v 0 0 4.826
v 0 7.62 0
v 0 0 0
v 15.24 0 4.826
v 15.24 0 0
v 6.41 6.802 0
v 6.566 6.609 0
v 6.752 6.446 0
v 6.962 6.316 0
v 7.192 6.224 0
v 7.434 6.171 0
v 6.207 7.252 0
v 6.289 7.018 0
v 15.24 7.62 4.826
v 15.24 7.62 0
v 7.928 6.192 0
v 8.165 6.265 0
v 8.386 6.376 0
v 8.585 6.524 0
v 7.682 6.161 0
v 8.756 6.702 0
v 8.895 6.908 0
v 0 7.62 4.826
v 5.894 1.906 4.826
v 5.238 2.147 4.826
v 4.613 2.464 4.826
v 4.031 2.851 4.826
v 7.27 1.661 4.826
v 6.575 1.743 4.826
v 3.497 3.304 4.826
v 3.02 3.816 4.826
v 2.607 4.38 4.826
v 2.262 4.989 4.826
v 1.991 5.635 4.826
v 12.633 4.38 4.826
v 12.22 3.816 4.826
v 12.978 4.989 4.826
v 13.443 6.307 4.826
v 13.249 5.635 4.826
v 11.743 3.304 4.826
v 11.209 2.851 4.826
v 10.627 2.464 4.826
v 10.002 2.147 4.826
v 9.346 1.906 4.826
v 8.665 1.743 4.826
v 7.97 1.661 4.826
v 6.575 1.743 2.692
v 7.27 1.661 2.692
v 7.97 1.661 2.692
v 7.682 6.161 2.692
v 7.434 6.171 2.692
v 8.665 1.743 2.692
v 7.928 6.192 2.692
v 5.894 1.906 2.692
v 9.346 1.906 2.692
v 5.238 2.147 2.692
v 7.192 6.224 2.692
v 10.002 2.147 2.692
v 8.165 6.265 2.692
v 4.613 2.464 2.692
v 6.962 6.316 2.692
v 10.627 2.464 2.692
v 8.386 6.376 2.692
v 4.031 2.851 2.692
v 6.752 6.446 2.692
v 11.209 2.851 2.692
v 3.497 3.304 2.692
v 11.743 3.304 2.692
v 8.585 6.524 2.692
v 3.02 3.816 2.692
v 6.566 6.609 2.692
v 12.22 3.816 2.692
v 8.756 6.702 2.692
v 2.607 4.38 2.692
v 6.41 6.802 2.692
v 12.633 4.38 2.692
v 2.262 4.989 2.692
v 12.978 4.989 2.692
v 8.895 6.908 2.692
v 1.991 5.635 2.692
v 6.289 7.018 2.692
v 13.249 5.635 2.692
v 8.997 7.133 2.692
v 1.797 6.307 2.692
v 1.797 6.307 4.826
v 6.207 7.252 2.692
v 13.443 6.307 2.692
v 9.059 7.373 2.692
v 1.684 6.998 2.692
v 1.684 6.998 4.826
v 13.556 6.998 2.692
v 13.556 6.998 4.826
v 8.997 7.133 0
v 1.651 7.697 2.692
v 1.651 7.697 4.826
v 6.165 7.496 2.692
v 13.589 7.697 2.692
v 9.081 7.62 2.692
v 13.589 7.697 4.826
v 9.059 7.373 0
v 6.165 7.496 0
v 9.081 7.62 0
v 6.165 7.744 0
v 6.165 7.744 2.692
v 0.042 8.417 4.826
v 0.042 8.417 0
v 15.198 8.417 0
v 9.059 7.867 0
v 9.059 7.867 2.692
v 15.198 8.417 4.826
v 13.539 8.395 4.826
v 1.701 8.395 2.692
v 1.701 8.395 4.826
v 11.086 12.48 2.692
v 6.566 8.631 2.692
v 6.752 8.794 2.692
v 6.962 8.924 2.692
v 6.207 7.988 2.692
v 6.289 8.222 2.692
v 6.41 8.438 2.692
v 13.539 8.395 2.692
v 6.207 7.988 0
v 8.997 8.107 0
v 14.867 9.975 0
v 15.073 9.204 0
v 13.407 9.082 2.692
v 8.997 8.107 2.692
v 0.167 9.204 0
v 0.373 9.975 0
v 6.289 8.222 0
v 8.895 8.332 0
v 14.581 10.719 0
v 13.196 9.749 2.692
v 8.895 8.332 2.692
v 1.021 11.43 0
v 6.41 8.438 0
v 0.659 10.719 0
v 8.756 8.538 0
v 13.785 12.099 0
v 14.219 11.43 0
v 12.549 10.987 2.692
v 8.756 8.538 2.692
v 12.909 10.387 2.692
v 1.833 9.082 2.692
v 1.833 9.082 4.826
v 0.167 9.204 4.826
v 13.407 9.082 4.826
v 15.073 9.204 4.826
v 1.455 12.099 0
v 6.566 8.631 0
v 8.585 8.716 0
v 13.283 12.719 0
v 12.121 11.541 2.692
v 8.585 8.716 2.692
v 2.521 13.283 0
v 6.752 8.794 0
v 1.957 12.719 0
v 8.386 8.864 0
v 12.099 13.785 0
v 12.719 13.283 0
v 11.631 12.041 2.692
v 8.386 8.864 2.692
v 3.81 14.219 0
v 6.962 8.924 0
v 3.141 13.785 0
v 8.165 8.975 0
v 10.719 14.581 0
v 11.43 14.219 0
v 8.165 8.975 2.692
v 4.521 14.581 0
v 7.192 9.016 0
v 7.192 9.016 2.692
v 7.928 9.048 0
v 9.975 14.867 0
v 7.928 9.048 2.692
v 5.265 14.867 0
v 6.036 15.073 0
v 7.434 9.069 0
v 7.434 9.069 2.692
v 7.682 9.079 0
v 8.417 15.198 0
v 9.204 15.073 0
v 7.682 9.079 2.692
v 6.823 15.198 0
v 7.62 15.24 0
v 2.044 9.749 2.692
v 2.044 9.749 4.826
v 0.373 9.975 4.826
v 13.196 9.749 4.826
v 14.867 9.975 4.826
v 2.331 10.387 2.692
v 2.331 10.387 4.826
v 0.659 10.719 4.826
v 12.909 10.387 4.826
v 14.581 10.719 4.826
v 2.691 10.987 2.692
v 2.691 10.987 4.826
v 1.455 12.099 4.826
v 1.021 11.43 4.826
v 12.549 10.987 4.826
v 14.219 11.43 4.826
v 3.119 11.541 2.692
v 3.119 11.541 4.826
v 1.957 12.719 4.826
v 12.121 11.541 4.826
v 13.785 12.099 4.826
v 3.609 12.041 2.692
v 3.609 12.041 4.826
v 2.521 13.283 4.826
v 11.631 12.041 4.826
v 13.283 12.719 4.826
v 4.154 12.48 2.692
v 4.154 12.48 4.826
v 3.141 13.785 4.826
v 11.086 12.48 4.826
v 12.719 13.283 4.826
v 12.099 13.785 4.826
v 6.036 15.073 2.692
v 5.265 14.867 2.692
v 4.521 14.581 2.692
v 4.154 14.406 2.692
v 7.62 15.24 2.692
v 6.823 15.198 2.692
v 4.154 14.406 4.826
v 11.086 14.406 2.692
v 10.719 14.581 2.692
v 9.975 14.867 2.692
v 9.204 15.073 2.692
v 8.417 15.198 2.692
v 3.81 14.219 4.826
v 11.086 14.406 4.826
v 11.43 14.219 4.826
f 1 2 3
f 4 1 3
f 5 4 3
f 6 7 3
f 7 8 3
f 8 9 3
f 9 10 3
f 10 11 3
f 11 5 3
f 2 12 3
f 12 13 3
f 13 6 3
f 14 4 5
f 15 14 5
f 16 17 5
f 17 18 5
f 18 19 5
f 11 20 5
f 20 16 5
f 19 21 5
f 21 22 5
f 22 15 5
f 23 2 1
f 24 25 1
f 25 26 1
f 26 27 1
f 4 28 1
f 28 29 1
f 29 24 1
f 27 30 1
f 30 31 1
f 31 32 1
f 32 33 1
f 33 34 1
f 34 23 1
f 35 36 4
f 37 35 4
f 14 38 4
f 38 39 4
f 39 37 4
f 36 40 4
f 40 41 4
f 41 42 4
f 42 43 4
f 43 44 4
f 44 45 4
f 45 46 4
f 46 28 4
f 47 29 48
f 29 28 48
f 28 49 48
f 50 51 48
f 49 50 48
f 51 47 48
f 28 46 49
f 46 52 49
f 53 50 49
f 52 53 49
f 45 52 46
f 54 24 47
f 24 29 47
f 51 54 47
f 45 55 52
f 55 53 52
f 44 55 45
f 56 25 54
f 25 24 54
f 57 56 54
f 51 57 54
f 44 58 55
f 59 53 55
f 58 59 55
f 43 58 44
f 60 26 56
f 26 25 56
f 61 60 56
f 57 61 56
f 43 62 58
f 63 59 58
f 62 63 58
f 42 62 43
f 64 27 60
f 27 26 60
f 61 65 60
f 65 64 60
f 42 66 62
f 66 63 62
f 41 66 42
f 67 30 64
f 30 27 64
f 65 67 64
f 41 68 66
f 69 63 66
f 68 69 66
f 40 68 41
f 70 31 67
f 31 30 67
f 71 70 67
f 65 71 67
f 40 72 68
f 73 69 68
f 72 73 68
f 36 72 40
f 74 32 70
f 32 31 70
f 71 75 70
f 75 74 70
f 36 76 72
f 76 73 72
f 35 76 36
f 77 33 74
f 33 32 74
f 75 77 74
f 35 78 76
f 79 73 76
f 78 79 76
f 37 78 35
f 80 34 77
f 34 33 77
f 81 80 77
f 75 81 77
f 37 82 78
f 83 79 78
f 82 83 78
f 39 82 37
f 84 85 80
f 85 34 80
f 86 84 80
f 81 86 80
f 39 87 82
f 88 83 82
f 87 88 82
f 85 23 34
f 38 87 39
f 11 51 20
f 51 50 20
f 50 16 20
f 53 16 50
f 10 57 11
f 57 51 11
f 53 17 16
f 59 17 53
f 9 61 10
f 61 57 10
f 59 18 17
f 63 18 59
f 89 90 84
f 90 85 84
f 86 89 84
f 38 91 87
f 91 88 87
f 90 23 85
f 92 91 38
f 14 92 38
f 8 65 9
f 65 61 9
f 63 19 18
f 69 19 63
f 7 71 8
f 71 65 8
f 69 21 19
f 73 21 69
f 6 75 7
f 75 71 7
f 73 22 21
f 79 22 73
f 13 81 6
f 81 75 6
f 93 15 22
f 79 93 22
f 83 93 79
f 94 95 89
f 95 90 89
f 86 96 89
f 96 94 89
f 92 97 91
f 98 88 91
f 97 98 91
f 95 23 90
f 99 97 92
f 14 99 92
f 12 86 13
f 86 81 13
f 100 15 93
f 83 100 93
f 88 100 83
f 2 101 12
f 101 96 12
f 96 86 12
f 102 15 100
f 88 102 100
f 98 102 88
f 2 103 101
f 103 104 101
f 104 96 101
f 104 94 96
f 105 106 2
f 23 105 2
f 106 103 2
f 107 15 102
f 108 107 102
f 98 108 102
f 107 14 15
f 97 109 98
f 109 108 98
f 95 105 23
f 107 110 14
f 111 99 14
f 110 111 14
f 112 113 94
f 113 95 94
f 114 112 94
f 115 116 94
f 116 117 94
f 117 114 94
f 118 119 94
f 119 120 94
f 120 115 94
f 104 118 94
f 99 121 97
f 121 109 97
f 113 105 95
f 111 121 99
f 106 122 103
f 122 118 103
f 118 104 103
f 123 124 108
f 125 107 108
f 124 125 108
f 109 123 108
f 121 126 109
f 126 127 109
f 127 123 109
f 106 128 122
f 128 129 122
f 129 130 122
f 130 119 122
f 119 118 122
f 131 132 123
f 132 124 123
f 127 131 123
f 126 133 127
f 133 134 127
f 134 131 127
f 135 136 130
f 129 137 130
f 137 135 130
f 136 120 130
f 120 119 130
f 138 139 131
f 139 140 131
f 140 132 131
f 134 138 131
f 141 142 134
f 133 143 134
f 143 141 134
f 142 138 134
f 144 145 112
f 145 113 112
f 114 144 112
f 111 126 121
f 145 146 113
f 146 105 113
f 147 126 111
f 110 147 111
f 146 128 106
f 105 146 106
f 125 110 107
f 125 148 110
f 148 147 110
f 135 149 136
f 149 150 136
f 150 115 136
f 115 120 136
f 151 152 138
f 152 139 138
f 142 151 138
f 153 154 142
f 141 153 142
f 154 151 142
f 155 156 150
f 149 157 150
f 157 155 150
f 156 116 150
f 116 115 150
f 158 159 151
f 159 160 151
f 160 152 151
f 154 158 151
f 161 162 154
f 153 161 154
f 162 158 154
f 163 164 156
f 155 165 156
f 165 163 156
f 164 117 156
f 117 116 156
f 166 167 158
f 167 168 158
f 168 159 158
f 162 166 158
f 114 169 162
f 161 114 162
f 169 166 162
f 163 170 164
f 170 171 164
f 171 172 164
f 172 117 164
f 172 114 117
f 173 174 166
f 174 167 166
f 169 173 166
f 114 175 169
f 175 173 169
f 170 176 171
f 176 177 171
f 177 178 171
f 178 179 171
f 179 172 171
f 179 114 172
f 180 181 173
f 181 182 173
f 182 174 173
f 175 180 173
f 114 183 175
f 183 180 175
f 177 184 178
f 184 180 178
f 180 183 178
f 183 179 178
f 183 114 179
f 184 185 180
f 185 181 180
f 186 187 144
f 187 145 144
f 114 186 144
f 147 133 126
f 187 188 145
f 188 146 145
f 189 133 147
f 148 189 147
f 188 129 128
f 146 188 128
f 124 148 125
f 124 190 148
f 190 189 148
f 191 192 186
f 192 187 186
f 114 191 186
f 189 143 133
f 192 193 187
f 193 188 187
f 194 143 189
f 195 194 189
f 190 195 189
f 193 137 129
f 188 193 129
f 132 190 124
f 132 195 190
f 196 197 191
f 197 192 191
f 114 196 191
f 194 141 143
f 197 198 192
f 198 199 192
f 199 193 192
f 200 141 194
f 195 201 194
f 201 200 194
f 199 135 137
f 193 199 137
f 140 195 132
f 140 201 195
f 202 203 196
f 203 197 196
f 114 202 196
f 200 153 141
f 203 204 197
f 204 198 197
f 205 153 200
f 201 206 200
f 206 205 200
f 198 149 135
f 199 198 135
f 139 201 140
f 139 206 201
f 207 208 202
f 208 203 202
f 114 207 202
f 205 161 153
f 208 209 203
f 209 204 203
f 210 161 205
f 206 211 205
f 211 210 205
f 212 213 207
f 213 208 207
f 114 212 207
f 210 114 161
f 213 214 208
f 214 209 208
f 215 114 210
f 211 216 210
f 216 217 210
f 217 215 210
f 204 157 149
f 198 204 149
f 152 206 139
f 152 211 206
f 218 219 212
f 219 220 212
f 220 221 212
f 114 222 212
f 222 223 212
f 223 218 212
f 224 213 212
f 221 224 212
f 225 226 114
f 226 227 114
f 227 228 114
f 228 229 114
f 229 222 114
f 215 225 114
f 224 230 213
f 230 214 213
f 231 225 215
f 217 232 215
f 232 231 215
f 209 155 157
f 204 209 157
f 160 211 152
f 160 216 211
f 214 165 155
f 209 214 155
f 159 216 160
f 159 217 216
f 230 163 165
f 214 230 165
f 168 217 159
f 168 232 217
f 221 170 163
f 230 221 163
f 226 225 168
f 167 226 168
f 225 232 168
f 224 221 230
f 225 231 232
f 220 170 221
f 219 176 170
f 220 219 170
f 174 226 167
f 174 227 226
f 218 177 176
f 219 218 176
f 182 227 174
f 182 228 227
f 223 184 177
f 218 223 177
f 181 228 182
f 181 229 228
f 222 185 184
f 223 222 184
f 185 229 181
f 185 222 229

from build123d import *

# Parameters (mm, degrees)
SKETCH1_W           = 15.24
SKETCH1_H           = 15.24
BOSS_EXTRUDE1_DEPTH = 25.146
SKETCH2_R           = 5.969
CUT_EXTRUDE1_DEPTH  = 22.4536
FILLET1_R           = 7.62
CUT_EXTRUDE2_DEPTH  = 22.4536
SKETCH4_R           = 1.4605
CUT_EXTRUDE3_DEPTH  = 32.123614073
SKETCH6_W           = 16.374741922
SKETCH6_H           = 17.109502327
CUT_EXTRUDE5_DEPTH  = 20.32
SKETCH5_W           = 2.54
SKETCH5_H           = 2.54
CUT_EXTRUDE4_DEPTH  = 6.35


with BuildPart() as part:
    # Sketch1 → Boss-Extrude1 (new body)
    with BuildSketch(Plane.XY):
        with Locations((7.62, 7.62)):
            Rectangle(SKETCH1_W, SKETCH1_H)
    extrude(amount=BOSS_EXTRUDE1_DEPTH)

    # Sketch2 → Cut-Extrude1 (cut)
    with BuildSketch(Plane.XY.offset(25.146)):
        with Locations((7.62, 7.62)):
            Circle(SKETCH2_R)
    extrude(amount=-CUT_EXTRUDE1_DEPTH, mode=Mode.SUBTRACT)

    # Fillet1
    fillet1_edges = [part.edges().sort_by_distance(p)[0] for p in [
        (15.24, 15.24, 12.573),
        (0, 15.24, 12.573),
    ]]
    fillet(fillet1_edges, radius=FILLET1_R - 0.0001)  # a hair under: the kernel refuses the full size

    # Sketch3 → Cut-Extrude2 (cut)
    with BuildSketch(Plane.XY.offset(25.146)):
        with BuildLine():
            Line((11.085783791, 12.479763751), (11.085783791, 15.600426387))
            Line((11.085783791, 15.600426387), (4.154216209, 15.600426387))
            Line((4.154216209, 15.600426387), (4.154216209, 12.479763751))
            ThreePointArc((4.154216209, 12.479763751), (7.62, 13.589), (11.085783791, 12.479763751))
        make_face()
    extrude(amount=-CUT_EXTRUDE2_DEPTH, mode=Mode.SUBTRACT)

    # Sketch4 → Cut-Extrude3 (cut, through all)
    with BuildSketch(Plane.XY.offset(2.6924)):
        with Locations((7.62, 7.62)):
            Circle(SKETCH4_R)
    extrude(amount=-CUT_EXTRUDE3_DEPTH, mode=Mode.SUBTRACT)

    # Sketch6 → Cut-Extrude5 (cut)
    with BuildSketch(Plane.XY.offset(25.146)):
        with Locations((8.187370961, 8.554751164)):
            Rectangle(SKETCH6_W, SKETCH6_H)
    extrude(amount=-CUT_EXTRUDE5_DEPTH, mode=Mode.SUBTRACT)

    # Sketch5 → Cut-Extrude4 (cut)
    with BuildSketch(Plane.XY.offset(25.146)):
        with Locations((1.27, 1.27)):
            Rectangle(SKETCH5_W, SKETCH5_H)
        with Locations((13.97, 1.27)):
            Rectangle(SKETCH5_W, SKETCH5_H)
    extrude(amount=-CUT_EXTRUDE4_DEPTH, mode=Mode.SUBTRACT)


solid = part.part
